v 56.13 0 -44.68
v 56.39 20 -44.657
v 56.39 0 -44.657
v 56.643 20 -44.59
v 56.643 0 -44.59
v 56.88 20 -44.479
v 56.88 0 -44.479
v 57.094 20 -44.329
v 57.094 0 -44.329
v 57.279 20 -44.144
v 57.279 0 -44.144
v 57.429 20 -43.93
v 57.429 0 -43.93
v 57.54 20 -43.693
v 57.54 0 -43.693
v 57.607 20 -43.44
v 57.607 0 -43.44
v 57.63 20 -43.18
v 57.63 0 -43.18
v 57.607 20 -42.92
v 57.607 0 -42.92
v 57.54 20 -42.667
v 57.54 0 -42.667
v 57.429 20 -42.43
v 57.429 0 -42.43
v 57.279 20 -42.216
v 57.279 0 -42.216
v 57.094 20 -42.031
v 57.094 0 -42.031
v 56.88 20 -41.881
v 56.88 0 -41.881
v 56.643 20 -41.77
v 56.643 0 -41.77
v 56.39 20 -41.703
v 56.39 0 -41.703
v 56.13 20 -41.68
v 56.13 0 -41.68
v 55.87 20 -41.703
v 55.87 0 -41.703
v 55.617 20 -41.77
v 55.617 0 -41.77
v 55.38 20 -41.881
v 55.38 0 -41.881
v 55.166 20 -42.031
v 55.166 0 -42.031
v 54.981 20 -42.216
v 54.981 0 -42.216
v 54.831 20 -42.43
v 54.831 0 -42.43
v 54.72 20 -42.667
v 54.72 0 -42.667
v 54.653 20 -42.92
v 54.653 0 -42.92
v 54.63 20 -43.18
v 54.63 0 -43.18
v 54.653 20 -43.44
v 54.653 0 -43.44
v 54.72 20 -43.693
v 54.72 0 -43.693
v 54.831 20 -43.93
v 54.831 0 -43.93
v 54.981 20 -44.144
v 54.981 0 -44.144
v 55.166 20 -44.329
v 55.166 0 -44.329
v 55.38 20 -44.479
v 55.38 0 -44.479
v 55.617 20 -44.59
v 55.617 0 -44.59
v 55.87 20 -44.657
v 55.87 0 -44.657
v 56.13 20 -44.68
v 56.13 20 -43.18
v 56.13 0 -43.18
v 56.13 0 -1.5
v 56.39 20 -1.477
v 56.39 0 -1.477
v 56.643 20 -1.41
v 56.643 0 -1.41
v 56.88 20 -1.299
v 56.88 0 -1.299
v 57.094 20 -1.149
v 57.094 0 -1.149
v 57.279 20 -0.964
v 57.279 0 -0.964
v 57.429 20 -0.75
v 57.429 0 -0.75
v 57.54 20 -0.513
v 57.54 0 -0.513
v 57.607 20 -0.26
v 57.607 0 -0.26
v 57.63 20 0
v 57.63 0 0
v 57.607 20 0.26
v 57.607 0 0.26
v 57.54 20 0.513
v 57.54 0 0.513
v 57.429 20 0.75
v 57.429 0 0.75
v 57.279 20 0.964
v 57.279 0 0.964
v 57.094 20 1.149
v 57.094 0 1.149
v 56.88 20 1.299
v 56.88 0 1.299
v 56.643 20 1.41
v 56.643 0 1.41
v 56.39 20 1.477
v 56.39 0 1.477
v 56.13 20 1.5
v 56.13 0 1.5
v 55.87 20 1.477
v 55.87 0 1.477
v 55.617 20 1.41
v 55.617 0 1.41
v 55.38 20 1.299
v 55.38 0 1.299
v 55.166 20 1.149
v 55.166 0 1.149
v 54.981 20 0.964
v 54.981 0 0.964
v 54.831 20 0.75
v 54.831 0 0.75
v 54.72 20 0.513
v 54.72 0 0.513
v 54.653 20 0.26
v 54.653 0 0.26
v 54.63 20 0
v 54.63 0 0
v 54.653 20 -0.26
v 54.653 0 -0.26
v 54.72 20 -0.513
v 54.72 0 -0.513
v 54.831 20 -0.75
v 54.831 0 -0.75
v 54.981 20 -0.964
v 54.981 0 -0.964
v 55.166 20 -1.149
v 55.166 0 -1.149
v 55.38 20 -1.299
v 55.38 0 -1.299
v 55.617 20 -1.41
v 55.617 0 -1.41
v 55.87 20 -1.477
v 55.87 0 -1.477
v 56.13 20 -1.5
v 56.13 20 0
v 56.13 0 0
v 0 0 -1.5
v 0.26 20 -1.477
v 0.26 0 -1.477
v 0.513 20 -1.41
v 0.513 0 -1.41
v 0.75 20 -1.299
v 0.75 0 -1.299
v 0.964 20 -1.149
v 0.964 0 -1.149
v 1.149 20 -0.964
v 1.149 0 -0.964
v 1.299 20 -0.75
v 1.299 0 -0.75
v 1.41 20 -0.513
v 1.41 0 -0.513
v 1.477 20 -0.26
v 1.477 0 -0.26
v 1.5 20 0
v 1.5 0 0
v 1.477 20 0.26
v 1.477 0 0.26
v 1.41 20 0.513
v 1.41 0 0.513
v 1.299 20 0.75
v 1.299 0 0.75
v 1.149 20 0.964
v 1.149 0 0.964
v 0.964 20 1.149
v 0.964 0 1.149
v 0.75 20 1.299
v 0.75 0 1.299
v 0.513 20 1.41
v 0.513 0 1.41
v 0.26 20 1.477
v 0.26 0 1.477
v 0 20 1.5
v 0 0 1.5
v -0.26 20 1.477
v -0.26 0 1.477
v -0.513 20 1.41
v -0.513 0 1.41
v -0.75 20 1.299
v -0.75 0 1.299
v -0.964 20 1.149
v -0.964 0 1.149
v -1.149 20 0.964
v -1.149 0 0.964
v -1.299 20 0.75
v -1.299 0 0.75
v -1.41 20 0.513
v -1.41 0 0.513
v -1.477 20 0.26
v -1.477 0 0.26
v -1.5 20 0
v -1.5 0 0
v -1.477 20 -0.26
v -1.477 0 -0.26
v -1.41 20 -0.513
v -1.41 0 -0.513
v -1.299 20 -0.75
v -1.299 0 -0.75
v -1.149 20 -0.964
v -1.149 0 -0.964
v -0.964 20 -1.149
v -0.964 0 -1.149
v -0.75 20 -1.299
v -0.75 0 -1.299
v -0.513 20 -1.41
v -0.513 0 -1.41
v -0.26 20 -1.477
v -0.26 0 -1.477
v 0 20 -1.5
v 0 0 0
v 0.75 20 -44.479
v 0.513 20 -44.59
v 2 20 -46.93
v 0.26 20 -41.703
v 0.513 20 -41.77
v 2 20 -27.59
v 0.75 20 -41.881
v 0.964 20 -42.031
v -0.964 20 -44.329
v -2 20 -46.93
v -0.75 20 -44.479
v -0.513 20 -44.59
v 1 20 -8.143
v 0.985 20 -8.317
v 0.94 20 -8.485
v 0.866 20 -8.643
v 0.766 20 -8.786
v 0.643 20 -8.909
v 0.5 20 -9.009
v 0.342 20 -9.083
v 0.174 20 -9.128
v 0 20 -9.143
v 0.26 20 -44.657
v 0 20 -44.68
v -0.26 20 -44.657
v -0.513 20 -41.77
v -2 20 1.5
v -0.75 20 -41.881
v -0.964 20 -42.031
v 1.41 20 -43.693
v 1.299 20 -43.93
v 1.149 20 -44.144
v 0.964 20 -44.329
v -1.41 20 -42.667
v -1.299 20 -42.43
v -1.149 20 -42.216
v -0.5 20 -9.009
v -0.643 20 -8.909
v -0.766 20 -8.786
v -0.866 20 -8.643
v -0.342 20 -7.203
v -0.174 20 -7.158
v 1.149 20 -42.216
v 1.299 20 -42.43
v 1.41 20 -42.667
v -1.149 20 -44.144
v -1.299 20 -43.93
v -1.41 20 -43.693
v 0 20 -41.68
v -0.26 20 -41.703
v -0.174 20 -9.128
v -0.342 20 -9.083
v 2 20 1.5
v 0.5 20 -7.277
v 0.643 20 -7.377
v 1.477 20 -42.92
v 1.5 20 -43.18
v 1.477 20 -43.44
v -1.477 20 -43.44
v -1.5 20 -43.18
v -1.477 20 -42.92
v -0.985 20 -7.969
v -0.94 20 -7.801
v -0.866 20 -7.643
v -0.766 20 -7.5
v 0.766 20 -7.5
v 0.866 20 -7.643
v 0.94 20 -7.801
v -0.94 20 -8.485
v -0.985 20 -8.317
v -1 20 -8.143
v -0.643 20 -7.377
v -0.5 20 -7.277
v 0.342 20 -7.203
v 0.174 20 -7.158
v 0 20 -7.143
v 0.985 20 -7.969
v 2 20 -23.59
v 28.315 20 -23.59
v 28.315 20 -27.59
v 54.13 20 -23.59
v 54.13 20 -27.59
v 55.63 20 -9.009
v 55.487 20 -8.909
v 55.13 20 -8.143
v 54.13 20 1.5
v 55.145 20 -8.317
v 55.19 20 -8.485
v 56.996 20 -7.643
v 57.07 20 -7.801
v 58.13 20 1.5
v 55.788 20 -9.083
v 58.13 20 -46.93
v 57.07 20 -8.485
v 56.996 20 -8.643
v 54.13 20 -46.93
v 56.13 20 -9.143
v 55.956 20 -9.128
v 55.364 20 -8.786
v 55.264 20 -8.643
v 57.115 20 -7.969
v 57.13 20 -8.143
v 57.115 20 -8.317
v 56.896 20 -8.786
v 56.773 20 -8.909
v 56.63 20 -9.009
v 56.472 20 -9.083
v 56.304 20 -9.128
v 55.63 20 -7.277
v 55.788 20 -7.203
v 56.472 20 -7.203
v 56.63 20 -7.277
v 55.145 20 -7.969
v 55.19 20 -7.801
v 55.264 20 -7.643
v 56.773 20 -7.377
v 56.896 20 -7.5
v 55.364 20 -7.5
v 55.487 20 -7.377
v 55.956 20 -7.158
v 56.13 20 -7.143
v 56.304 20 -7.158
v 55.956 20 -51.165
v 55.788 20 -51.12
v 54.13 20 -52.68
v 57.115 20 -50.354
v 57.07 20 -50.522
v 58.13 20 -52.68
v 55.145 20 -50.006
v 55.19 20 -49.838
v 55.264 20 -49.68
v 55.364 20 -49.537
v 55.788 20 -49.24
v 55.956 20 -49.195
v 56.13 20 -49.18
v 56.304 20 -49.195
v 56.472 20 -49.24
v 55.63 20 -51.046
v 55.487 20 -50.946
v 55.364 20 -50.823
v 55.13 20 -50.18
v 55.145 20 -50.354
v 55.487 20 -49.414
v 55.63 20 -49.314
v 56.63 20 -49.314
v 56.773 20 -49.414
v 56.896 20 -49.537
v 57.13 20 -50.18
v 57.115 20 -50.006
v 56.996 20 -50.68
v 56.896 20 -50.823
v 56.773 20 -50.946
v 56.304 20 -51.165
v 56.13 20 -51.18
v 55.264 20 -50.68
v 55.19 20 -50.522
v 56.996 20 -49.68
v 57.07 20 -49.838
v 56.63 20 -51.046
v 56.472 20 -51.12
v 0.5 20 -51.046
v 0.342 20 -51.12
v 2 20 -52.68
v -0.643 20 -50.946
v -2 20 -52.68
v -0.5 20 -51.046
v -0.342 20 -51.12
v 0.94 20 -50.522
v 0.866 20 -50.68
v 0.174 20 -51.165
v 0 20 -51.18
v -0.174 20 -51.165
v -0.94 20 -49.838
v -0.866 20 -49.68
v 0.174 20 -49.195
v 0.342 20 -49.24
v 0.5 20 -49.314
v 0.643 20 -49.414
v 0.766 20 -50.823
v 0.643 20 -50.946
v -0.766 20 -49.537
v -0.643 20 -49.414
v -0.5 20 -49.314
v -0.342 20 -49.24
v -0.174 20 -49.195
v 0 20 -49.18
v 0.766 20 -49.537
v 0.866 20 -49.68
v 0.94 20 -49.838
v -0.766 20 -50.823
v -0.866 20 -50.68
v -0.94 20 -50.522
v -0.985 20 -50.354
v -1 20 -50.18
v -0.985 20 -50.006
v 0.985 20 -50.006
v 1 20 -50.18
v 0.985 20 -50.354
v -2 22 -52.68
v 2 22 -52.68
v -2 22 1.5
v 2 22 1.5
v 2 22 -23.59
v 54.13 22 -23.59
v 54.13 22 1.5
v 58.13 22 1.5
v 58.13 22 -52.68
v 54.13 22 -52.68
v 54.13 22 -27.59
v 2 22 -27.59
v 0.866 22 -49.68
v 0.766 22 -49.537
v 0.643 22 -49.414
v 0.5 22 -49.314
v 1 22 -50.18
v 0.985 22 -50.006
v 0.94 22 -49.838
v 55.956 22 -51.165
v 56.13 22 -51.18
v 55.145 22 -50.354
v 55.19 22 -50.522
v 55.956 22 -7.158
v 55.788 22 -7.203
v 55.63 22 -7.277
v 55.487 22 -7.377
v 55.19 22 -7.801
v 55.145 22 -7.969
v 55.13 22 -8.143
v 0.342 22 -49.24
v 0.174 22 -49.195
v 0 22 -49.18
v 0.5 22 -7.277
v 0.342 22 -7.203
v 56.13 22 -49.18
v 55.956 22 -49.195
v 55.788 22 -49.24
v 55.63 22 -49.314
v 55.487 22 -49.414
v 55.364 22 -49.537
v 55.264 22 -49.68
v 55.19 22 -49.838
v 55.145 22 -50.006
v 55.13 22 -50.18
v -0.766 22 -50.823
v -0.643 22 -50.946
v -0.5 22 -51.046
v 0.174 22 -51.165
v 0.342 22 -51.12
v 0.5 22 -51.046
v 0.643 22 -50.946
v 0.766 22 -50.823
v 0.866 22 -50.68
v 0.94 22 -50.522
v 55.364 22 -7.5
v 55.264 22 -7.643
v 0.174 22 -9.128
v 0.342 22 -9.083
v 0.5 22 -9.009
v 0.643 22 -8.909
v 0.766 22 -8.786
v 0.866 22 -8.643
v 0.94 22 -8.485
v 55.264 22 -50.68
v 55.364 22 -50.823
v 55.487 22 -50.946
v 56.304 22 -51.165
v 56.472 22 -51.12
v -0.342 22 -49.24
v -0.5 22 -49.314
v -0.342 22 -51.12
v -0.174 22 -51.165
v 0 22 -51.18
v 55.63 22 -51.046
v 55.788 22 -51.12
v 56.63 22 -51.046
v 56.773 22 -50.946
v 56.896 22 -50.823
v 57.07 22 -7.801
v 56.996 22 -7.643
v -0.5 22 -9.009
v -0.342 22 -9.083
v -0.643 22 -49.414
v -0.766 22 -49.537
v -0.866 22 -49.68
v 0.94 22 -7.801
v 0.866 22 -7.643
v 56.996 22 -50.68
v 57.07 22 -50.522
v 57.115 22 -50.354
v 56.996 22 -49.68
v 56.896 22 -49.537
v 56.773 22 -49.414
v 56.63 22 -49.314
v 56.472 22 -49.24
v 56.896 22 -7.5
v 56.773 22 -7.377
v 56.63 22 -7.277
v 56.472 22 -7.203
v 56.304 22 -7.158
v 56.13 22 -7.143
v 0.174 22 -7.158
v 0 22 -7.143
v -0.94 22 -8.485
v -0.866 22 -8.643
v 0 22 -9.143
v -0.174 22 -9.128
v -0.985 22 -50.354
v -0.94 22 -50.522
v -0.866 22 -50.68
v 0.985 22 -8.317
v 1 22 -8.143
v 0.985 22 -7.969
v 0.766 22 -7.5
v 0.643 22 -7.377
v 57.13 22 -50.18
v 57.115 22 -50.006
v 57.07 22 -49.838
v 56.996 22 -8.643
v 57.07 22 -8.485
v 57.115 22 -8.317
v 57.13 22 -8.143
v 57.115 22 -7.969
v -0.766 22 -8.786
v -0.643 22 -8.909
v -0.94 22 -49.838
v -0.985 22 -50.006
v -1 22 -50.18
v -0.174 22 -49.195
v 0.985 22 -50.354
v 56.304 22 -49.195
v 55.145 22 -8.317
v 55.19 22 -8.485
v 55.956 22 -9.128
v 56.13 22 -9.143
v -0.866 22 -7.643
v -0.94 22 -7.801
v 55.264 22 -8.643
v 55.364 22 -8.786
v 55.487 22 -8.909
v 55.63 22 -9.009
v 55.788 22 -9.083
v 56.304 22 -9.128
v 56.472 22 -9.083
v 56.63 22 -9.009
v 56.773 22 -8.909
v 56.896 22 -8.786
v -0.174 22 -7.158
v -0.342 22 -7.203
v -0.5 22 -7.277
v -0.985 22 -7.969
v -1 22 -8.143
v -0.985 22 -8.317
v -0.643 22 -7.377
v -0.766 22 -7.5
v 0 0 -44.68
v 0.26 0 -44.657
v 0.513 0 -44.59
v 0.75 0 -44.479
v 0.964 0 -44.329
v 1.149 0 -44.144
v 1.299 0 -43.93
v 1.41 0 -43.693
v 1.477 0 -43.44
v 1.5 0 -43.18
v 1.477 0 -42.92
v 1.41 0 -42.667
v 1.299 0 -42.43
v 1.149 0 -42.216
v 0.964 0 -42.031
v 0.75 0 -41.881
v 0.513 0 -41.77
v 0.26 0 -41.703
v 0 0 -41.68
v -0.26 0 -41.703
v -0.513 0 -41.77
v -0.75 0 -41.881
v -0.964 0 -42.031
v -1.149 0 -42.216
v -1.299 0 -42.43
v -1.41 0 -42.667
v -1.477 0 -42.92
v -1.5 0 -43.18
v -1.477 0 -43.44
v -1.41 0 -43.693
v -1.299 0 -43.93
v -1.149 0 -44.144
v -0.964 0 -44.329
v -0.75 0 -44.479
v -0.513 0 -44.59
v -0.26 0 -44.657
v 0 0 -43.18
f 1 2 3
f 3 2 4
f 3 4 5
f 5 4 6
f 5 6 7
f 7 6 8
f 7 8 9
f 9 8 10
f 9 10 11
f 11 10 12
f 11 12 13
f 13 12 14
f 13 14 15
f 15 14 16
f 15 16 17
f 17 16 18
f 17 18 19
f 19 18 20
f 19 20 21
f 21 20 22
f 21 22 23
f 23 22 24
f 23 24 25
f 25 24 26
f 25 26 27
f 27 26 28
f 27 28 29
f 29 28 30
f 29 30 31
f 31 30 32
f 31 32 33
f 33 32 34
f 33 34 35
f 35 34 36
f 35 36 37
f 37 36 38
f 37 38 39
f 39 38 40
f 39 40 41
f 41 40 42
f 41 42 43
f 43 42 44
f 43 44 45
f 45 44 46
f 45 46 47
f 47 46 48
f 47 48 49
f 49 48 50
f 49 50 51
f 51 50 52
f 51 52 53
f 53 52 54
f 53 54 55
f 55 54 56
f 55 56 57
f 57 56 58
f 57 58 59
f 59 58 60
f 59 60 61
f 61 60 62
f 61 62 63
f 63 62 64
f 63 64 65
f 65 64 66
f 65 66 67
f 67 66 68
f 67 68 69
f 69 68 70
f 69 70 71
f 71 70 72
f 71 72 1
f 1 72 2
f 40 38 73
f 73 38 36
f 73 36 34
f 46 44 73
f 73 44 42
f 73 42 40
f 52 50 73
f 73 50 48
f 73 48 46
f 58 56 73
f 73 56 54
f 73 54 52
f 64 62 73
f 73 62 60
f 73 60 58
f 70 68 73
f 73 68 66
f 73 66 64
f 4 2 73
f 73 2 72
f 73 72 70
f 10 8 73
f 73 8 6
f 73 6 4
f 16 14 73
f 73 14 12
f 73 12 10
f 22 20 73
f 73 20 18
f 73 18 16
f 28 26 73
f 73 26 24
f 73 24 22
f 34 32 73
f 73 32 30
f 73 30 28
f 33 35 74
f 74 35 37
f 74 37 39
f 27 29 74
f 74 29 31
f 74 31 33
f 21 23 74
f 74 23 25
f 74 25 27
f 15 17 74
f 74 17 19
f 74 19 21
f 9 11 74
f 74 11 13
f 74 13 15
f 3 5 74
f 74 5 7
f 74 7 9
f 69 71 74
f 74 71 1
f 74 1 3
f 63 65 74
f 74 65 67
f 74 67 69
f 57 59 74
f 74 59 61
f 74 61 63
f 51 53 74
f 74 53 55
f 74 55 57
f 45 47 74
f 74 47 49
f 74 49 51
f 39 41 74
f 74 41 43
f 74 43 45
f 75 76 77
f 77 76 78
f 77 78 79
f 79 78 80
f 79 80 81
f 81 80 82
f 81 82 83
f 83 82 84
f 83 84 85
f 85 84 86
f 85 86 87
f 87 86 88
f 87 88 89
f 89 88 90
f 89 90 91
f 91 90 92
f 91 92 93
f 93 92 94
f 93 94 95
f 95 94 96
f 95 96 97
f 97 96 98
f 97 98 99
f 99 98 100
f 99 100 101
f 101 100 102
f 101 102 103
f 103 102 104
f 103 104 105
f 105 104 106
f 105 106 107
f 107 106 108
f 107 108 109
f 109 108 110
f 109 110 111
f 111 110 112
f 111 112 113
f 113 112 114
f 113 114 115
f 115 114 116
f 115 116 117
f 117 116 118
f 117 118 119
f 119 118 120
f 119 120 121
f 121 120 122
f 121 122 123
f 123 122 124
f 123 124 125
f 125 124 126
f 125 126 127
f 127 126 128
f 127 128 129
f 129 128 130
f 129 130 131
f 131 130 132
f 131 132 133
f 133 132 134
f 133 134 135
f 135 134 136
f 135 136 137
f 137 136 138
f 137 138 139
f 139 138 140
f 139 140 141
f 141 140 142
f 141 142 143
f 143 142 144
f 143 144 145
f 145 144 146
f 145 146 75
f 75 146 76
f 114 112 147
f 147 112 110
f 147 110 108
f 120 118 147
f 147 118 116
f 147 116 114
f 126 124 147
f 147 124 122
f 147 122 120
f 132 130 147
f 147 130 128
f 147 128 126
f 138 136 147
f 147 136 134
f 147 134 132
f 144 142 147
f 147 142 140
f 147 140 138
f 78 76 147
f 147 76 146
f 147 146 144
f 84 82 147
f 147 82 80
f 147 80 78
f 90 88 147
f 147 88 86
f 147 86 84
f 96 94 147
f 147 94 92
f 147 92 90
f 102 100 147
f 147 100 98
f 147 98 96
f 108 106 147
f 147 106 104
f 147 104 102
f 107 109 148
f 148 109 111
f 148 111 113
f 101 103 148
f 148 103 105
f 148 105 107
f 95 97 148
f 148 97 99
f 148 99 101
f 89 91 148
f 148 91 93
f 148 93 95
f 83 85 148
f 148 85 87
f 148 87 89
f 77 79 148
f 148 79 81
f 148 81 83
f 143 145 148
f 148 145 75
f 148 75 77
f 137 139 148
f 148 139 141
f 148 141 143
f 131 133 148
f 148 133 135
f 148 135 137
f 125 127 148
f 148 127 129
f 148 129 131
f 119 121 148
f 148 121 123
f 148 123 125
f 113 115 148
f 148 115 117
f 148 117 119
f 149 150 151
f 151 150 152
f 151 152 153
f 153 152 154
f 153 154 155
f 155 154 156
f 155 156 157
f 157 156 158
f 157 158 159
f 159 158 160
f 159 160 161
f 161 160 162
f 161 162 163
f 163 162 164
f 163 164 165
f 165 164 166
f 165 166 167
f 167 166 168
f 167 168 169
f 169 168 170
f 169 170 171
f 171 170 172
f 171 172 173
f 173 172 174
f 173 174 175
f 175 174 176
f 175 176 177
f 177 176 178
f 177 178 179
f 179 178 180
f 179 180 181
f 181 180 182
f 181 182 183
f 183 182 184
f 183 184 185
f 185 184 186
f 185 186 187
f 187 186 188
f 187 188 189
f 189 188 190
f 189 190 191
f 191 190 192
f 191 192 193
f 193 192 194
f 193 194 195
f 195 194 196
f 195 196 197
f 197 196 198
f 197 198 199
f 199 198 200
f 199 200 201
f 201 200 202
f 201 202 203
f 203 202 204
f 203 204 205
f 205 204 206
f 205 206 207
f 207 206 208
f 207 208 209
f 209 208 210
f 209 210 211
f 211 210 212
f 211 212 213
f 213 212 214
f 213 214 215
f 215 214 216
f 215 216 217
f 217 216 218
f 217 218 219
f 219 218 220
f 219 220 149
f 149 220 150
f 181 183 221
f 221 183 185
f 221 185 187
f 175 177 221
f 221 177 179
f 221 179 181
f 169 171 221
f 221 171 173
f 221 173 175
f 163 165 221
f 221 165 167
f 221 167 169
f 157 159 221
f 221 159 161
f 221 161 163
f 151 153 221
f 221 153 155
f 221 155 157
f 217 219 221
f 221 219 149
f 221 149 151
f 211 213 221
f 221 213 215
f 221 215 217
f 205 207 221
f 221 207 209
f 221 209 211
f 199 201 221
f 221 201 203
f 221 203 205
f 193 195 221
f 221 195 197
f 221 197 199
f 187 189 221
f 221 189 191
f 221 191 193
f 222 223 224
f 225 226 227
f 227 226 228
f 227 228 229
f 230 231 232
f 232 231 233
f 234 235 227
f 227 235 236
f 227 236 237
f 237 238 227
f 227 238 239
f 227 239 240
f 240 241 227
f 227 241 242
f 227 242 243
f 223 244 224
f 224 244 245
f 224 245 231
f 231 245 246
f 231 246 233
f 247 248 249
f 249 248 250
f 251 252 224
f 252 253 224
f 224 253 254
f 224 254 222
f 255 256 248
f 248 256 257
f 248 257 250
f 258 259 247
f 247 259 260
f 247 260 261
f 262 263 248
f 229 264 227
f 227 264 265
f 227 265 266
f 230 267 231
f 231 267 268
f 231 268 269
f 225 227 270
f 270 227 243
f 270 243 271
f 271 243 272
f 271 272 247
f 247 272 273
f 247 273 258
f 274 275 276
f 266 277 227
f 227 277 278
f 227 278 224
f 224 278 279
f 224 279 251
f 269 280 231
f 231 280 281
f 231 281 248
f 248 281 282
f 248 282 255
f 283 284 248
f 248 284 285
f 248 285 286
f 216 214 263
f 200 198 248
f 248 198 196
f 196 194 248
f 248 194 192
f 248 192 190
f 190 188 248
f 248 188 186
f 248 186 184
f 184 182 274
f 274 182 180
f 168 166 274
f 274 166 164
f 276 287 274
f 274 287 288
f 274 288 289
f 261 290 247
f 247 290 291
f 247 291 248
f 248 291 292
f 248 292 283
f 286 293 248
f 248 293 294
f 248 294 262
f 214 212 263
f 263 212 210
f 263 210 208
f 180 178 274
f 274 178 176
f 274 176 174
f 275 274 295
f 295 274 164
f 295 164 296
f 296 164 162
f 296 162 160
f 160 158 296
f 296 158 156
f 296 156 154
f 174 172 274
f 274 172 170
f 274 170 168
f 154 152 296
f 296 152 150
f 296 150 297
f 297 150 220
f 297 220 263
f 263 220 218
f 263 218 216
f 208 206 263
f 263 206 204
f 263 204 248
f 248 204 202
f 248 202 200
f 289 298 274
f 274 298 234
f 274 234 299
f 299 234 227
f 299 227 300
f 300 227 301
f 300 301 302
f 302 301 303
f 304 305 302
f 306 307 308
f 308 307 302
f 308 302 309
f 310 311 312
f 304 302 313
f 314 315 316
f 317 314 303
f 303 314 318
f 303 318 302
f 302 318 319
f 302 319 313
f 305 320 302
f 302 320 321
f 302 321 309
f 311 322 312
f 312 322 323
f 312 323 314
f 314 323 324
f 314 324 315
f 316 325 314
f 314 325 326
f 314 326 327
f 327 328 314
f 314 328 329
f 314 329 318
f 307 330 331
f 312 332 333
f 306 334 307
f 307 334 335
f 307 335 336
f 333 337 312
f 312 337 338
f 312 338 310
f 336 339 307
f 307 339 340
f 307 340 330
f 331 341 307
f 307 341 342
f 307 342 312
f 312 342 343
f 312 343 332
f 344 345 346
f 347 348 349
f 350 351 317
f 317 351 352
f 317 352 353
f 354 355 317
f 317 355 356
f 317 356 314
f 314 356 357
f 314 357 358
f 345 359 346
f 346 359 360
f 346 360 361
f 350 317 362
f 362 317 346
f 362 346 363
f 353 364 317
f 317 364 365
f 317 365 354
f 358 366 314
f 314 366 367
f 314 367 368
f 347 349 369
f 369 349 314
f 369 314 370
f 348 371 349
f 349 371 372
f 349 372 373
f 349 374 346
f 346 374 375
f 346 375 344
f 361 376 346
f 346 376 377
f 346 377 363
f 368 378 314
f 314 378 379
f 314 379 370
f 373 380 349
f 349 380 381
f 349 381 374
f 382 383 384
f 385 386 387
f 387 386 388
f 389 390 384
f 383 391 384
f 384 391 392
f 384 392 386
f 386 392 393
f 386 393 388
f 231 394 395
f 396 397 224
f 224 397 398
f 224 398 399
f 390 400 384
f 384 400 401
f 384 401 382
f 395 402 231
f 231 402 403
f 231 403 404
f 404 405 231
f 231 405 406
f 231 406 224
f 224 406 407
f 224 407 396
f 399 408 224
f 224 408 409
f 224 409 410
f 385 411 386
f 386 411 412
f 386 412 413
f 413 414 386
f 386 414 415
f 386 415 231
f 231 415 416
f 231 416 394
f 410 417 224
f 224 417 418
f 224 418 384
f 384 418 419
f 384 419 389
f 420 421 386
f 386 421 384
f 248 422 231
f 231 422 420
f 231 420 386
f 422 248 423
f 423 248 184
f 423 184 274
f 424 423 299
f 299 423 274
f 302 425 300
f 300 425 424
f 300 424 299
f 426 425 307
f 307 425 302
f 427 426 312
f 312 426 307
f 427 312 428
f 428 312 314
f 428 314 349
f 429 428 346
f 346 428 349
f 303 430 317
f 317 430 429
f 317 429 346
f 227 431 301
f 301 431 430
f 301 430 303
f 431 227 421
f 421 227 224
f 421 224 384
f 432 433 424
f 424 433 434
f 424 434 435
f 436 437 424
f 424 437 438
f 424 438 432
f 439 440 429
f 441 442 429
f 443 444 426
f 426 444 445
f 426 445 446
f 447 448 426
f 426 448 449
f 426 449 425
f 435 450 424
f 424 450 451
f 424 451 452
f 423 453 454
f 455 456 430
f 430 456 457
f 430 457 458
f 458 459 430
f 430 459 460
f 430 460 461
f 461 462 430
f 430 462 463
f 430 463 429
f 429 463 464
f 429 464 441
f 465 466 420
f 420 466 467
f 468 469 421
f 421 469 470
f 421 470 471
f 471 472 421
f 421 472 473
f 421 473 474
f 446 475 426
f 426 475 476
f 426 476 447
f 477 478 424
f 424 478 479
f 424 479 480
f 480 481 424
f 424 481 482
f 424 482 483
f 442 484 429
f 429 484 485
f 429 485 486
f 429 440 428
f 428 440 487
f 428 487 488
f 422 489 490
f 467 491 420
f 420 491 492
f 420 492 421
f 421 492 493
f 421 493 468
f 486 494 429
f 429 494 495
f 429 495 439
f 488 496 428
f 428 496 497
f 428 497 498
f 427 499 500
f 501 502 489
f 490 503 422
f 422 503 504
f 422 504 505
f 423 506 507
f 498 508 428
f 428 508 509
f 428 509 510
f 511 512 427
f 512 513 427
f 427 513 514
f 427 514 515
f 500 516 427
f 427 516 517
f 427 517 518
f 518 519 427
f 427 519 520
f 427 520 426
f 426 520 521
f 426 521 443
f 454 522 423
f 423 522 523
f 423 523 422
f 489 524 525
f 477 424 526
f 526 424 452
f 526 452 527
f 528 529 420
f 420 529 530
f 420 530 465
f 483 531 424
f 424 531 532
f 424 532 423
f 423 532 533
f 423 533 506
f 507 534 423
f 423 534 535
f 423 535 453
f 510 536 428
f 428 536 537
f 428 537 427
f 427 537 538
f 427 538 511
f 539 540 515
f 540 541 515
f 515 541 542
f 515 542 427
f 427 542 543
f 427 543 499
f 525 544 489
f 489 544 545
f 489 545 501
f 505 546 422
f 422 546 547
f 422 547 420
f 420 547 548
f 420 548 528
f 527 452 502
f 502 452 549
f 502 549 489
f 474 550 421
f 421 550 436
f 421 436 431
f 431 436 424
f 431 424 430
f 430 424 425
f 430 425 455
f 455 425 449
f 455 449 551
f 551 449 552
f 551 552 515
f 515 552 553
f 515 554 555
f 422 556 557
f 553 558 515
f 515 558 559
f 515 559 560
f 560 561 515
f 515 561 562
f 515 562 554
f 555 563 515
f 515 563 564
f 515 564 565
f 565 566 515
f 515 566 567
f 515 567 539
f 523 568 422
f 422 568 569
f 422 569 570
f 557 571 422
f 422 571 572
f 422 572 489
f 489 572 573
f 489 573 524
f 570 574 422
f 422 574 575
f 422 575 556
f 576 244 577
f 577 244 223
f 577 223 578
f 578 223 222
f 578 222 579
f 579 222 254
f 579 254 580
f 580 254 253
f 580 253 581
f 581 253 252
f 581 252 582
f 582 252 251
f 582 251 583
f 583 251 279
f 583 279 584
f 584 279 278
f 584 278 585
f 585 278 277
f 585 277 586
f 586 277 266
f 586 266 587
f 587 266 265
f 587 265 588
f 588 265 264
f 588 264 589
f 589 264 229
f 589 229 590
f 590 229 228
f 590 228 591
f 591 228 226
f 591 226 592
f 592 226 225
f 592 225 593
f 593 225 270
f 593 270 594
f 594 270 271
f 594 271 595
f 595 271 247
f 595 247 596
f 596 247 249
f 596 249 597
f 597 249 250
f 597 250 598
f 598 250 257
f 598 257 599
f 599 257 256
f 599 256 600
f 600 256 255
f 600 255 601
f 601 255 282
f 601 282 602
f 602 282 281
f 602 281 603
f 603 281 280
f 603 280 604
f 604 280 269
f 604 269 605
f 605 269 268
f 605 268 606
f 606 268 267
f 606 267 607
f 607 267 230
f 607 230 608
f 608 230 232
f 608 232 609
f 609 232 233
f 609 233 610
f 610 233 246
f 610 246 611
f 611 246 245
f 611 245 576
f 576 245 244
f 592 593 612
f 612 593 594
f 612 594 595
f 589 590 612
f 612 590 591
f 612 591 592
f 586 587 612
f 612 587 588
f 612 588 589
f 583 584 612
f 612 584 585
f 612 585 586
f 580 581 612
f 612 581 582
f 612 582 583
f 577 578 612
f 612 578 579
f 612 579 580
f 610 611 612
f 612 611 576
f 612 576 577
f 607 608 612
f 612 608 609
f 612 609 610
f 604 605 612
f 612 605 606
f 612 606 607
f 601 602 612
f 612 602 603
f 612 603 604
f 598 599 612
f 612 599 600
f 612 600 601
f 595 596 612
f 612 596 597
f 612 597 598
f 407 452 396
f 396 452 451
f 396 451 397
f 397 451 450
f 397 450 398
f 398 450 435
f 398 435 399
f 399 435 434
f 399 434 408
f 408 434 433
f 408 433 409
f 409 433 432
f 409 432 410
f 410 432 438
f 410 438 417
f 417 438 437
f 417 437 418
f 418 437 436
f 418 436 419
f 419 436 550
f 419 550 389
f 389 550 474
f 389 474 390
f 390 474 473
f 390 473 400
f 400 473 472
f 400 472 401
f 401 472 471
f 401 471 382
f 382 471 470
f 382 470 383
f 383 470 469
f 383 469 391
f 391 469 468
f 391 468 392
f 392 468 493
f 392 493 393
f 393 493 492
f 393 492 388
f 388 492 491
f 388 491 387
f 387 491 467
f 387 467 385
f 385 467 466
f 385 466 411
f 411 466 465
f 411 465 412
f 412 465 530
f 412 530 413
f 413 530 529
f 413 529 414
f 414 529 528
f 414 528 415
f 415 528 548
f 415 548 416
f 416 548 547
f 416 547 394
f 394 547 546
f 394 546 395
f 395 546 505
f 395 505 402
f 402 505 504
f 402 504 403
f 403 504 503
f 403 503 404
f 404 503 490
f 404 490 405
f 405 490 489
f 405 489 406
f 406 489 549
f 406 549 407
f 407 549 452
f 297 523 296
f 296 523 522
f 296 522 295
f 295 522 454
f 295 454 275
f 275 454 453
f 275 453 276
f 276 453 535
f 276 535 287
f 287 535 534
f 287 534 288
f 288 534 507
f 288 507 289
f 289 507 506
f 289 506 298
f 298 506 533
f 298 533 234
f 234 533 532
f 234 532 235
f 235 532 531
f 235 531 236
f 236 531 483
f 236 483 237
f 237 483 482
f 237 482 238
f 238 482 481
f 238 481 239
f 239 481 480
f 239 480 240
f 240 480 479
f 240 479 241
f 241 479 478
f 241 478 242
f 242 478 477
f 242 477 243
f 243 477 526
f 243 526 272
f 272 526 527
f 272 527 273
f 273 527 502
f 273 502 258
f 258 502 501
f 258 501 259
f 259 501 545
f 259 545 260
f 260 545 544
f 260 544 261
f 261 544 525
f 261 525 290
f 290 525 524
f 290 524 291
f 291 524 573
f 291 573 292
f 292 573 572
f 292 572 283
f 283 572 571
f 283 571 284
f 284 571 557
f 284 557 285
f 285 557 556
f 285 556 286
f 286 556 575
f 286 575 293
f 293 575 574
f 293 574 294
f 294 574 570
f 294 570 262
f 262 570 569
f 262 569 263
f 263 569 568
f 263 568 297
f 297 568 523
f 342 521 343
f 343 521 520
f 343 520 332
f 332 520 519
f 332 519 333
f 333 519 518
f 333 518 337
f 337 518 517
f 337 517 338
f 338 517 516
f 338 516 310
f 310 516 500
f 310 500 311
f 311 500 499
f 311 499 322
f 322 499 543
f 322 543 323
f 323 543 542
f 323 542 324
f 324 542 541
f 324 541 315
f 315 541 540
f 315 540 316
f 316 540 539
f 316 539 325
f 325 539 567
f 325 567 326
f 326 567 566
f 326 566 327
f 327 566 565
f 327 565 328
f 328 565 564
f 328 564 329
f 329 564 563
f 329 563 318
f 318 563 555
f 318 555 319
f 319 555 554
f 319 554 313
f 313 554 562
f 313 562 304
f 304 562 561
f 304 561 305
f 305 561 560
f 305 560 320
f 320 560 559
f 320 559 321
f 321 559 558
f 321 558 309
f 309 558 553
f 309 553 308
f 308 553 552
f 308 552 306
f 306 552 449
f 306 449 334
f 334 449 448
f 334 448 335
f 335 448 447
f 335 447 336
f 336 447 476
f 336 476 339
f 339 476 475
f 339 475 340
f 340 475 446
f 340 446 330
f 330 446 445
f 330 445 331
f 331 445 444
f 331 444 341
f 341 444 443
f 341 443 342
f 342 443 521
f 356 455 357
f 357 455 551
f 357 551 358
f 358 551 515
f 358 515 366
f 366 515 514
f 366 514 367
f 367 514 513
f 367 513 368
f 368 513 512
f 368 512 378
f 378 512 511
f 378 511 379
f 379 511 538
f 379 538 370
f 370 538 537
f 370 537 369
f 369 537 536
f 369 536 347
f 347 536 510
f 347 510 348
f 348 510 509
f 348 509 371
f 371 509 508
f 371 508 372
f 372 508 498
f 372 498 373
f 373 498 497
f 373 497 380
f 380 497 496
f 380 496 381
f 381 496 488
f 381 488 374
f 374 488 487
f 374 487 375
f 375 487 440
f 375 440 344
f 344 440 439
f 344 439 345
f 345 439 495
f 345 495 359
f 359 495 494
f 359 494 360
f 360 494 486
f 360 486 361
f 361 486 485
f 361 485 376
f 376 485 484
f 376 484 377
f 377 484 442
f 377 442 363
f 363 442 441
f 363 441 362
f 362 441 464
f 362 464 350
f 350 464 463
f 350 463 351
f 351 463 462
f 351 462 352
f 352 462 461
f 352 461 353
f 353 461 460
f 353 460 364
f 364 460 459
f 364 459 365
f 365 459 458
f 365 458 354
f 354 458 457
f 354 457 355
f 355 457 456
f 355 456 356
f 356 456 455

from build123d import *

# Parameters (mm, degrees)
SKETCH_1_R          = 1.5
EXTRUDE_1_DEPTH     = 20
EXTRUDE_1_2_DEPTH   = 20
EXTRUDE_1_3_DEPTH   = 20
EXTRUDE_1_4_DEPTH   = 20
EXTRUDE_2_DEPTH     = 2
SKETCH_4_R          = 1
CUT_EXTRUDE_1_DEPTH = 2


with BuildPart() as part:
    # 草图1 → 凸台-拉伸1 (new body)
    with BuildSketch(Plane(origin=(0, 0, 0), x_dir=(1, 0, 0), z_dir=(0, 1, 0))):
        with Locations(Location((0, 0, 0), (0, 0, 270))):
            Circle(SKETCH_1_R)
    extrude(amount=EXTRUDE_1_DEPTH)



with BuildPart() as body_2:
    # 草图1 → Extrude 1 2 (new body)
    with BuildSketch(Plane(origin=(0, 0, 0), x_dir=(1, 0, 0), z_dir=(0, 1, 0))):
        with Locations(Location((0, 43.18, 0), (0, 0, 270))):
            Circle(SKETCH_1_R)
    extrude(amount=EXTRUDE_1_2_DEPTH)


with BuildPart() as body_3:
    # 草图1 → Extrude 1 3 (new body)
    with BuildSketch(Plane(origin=(0, 0, 0), x_dir=(1, 0, 0), z_dir=(0, 1, 0))):
        with Locations(Location((56.13, 43.18, 0), (0, 0, 270))):
            Circle(SKETCH_1_R)
    extrude(amount=EXTRUDE_1_3_DEPTH)


with BuildPart() as body_4:
    # 草图1 → Extrude 1 4 (new body)
    with BuildSketch(Plane(origin=(0, 0, 0), x_dir=(1, 0, 0), z_dir=(0, 1, 0))):
        with Locations(Location((56.13, 0, 0), (0, 0, 270))):
            Circle(SKETCH_1_R)
    extrude(amount=EXTRUDE_1_4_DEPTH)


with BuildPart() as part_1:
    add(part.part)

    add(body_2.part)  # 凸台-拉伸2 merges body 2
    # 草图2 → 凸台-拉伸2 (add)
    with BuildSketch(Plane(origin=(0, 20, 0), x_dir=(1, 0, 0), z_dir=(0, 1, 0))):
        Polygon((-2, 52.68), (-2, -1.5), (2, -1.5), (2, 23.59), (54.13, 23.59), (54.13, -1.5), (58.13, -1.5), (58.13, 52.68), (54.13, 52.68), (54.13, 27.59), (2, 27.59), (2, 52.68), align=None)
    extrude(amount=EXTRUDE_2_DEPTH)

    # 草图4 → 切除-拉伸1 (cut)
    with BuildSketch(Plane(origin=(0, 22, 0), x_dir=(1, 0, 0), z_dir=(0, 1, 0))):
        with Locations(Location((0, 50.18, 0), (0, 0, 270))):
            Circle(SKETCH_4_R)
        with Locations(Location((0, 8.143, 0), (0, 0, 270))):
            Circle(SKETCH_4_R)
        with Locations(Location((56.13, 8.143, 0), (0, 0, 270))):
            Circle(SKETCH_4_R)
        with Locations(Location((56.13, 50.18, 0), (0, 0, 270))):
            Circle(SKETCH_4_R)
    extrude(amount=-CUT_EXTRUDE_1_DEPTH, mode=Mode.SUBTRACT)


solid = Compound([body_3.part, body_4.part, part_1.part])
